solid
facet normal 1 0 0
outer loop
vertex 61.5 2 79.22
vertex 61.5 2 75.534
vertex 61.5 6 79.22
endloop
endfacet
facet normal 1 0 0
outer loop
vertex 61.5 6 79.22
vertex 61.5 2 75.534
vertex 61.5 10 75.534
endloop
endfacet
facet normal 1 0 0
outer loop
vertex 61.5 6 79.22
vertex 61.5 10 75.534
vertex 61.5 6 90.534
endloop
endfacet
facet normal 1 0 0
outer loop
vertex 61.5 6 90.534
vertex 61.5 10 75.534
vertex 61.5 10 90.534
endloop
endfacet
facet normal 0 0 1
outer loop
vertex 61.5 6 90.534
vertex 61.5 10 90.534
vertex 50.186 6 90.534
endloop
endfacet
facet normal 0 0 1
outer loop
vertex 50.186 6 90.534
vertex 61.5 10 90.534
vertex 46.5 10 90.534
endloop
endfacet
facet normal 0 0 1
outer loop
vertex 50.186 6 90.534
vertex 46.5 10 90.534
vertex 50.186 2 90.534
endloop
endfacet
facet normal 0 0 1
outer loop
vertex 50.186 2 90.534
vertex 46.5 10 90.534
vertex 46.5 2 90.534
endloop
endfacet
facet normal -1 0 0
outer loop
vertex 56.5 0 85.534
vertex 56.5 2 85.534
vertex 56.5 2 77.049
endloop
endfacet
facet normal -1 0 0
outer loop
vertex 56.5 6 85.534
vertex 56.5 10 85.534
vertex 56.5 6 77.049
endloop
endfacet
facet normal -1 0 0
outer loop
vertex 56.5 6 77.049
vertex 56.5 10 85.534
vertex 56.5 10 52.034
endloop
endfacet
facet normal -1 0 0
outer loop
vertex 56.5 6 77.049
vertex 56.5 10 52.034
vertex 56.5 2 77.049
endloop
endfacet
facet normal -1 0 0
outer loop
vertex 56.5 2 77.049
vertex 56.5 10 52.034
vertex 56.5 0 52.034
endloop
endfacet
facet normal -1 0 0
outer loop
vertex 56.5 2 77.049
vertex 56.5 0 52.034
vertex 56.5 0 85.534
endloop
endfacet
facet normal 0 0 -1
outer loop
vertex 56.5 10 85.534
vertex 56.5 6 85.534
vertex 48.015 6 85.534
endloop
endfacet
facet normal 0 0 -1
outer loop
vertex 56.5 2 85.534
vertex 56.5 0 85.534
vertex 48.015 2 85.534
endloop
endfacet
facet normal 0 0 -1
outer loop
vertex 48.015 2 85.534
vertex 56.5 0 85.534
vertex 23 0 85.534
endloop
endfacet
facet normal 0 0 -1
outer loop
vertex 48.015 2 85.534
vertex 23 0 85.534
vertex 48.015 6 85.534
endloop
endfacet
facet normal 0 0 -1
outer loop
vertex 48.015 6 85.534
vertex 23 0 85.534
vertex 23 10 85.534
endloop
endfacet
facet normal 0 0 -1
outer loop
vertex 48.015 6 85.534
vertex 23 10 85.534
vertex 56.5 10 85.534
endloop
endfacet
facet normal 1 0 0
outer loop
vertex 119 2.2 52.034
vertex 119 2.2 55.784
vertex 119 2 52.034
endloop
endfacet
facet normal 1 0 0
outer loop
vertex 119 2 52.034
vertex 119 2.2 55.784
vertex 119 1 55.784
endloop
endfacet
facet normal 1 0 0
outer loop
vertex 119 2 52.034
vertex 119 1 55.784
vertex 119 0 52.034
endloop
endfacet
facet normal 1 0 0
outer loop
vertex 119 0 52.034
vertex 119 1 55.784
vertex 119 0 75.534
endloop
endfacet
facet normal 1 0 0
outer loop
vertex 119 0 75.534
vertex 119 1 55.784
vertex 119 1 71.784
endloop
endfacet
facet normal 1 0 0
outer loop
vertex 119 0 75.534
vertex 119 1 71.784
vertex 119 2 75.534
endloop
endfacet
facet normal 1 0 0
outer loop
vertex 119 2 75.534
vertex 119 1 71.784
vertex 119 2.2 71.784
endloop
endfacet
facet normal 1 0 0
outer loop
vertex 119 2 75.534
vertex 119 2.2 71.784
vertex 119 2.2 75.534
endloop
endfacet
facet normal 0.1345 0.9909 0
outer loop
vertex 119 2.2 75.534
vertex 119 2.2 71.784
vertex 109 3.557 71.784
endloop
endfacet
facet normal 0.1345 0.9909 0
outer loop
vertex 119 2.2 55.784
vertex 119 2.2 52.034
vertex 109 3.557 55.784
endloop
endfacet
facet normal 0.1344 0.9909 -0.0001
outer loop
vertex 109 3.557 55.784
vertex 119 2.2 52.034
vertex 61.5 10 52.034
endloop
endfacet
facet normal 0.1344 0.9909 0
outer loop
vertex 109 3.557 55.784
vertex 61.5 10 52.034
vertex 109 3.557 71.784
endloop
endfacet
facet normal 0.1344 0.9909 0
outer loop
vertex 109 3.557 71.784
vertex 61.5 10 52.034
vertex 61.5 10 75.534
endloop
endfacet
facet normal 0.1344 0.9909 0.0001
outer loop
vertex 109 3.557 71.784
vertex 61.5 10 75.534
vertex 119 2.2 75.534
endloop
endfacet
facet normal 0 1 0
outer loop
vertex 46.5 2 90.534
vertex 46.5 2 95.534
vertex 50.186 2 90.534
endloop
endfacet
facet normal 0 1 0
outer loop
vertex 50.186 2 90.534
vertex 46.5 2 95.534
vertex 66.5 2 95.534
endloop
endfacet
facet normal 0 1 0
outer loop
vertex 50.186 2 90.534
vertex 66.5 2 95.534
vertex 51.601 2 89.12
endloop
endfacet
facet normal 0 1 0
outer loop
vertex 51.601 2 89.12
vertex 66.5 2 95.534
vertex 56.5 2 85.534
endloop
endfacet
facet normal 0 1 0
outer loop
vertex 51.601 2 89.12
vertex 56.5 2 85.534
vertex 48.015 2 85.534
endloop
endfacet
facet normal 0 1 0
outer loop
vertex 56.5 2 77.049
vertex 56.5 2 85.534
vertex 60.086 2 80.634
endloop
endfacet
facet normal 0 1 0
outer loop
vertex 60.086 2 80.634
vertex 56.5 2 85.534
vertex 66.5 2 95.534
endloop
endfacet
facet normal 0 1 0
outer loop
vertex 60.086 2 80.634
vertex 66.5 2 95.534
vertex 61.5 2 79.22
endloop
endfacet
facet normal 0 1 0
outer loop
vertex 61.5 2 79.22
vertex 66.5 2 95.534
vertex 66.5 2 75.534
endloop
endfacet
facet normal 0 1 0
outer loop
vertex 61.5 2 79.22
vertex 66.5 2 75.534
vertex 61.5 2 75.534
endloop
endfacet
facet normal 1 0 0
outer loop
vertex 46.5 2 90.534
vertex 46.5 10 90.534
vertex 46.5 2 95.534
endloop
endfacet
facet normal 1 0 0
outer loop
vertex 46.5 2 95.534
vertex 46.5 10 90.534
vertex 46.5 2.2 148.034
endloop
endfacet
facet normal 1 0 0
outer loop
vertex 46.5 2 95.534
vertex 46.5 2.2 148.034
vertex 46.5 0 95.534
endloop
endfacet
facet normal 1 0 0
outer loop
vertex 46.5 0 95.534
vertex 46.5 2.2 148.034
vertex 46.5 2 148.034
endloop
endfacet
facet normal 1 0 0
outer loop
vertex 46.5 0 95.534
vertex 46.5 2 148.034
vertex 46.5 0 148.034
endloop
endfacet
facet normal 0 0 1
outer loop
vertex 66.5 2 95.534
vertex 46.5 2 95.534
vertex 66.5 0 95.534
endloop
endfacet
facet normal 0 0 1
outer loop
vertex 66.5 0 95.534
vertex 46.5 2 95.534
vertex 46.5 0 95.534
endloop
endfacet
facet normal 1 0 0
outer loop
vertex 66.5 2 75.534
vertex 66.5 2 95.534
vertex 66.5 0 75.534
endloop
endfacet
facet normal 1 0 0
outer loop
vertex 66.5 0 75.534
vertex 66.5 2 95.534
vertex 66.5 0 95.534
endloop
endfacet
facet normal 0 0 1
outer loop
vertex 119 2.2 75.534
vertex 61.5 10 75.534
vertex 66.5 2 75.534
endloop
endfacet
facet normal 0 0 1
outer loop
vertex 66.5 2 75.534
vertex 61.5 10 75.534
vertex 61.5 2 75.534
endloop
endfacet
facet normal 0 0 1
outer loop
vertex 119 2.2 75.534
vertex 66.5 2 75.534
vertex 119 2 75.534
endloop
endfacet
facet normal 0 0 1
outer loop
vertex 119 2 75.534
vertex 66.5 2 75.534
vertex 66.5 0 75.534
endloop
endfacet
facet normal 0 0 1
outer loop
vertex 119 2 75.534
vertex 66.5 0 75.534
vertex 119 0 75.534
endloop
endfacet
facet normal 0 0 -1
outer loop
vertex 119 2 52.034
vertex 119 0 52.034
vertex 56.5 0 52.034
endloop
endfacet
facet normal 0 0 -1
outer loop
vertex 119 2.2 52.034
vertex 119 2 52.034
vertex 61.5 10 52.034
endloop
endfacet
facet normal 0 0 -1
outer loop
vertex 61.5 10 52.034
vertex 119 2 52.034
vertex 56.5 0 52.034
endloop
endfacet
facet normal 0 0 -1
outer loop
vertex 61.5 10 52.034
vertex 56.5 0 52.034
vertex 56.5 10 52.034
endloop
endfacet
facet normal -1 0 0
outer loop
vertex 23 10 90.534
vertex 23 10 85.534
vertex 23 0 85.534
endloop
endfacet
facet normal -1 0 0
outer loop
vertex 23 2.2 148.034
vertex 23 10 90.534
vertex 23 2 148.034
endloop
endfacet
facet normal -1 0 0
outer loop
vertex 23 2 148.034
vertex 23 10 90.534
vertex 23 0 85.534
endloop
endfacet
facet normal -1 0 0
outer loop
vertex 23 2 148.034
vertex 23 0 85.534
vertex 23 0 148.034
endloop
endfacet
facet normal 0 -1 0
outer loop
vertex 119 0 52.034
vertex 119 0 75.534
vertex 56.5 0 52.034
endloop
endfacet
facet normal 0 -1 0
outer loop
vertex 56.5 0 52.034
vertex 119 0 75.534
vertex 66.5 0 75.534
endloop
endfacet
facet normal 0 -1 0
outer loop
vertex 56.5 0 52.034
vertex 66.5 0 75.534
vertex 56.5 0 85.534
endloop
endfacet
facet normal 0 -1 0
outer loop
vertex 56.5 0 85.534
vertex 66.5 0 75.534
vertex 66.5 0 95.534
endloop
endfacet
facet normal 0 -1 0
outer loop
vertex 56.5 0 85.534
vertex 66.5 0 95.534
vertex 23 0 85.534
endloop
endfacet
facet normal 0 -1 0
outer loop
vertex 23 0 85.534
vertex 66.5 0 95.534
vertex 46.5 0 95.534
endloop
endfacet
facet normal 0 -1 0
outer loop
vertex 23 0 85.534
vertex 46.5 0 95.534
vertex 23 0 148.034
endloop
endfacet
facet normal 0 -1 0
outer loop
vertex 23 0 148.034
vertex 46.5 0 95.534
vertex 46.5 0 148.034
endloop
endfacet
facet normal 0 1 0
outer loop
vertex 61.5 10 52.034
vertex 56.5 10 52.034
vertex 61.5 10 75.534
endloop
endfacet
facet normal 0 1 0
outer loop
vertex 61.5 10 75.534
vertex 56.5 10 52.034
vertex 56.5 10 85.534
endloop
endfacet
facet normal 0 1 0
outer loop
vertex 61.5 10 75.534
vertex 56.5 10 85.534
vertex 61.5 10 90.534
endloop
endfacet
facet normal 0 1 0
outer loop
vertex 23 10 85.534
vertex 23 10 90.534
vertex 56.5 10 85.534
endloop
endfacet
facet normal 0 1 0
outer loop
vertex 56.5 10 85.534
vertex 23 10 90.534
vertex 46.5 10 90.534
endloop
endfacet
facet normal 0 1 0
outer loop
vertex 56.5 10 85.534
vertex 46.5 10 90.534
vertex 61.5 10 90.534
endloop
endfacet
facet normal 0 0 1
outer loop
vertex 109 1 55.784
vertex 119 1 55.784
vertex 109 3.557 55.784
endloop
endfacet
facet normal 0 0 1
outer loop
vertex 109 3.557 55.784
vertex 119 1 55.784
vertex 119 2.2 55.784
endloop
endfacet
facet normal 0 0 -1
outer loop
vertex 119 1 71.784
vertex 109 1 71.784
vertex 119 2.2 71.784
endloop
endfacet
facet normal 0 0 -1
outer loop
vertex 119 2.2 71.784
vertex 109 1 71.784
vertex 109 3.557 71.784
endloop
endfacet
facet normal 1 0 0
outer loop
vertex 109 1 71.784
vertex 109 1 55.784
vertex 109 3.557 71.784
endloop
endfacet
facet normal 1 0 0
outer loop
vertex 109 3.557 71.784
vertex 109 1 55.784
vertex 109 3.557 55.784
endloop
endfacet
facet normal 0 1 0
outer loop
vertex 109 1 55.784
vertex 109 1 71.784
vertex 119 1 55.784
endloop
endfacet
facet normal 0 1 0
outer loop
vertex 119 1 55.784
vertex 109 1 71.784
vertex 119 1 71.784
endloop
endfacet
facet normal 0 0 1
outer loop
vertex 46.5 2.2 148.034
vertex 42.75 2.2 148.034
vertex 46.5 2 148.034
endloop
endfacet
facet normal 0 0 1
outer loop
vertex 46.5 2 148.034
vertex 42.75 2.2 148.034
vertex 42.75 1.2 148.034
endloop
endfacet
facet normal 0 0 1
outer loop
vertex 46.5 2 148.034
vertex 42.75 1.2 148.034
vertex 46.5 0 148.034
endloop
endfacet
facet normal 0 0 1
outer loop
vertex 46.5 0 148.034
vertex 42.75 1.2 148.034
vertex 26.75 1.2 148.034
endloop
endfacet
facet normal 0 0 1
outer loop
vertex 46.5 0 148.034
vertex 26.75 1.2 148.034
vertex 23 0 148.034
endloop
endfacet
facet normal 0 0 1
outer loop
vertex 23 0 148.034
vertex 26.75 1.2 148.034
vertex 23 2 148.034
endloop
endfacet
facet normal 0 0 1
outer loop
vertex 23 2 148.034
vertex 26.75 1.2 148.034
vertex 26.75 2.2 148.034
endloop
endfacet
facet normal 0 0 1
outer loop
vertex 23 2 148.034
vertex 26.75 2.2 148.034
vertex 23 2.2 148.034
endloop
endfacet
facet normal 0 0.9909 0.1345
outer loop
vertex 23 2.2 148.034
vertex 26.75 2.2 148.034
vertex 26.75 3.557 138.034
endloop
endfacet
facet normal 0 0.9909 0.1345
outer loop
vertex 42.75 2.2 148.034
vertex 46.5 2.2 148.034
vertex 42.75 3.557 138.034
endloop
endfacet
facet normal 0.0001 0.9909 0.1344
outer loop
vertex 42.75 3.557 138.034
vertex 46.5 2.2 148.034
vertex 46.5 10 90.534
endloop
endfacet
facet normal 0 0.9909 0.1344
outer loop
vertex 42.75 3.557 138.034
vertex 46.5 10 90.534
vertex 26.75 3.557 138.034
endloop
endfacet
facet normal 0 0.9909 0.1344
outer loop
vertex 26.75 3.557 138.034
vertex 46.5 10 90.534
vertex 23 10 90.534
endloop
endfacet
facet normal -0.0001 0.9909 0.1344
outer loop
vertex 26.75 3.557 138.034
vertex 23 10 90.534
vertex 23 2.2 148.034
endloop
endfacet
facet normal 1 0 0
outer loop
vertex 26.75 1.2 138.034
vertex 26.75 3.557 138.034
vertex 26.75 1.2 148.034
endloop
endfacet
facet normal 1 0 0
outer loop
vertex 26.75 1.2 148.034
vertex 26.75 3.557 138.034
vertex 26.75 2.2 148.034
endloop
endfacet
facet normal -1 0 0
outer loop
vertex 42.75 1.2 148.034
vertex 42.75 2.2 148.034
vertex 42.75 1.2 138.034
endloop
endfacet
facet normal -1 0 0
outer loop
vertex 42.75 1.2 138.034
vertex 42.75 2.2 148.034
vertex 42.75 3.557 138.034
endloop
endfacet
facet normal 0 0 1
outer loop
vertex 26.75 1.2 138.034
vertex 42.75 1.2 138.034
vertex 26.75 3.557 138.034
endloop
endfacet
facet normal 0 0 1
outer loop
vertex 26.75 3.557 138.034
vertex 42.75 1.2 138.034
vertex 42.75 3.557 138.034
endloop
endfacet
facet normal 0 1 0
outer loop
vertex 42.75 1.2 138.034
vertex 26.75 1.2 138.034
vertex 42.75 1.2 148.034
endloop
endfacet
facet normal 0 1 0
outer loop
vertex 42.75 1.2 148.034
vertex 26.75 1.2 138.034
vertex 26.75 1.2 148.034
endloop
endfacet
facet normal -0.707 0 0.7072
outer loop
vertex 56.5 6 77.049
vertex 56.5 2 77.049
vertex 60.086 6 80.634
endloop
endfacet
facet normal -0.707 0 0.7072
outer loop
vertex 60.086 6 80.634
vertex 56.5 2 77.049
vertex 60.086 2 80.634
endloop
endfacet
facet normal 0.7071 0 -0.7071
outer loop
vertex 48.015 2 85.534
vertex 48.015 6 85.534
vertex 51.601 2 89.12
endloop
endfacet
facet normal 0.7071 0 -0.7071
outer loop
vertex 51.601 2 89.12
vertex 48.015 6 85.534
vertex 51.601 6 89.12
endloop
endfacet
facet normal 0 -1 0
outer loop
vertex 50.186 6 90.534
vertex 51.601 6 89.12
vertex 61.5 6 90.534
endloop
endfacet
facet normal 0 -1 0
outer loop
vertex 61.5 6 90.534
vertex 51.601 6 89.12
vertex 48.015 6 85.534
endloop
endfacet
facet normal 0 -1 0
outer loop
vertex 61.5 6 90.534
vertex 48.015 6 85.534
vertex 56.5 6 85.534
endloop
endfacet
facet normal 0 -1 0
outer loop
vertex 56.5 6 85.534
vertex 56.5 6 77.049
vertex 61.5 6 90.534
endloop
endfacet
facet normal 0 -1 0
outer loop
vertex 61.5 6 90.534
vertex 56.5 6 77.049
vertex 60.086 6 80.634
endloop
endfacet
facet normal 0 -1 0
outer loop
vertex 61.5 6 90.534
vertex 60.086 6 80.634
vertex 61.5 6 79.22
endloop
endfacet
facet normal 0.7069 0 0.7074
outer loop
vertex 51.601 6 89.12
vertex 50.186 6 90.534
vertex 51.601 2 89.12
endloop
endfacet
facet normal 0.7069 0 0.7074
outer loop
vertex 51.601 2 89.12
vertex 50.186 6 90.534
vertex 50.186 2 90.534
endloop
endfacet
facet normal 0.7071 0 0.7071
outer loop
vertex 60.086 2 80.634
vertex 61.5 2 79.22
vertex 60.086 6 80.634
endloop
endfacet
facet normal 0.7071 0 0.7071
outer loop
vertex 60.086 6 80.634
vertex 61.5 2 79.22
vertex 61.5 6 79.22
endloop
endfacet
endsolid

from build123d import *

# Parameters (mm, degrees)
BOSS_EXTRUDE1_DEPTH = 2
BOSS_EXTRUDE2_DEPTH = 8
SKETCH7_W           = 20
SKETCH7_H           = 16
CUT_EXTRUDE4_DEPTH  = 1
SKETCH8_W           = 23.5
SKETCH8_H           = 10
CUT_EXTRUDE5_DEPTH  = 205.156097213
SKETCH9_W           = 10
SKETCH9_H           = 23.5
CUT_EXTRUDE6_DEPTH  = 197.517261647
SKETCH16_W          = 16
SKETCH16_H          = 4
CUT_EXTRUDE7_DEPTH  = 10
SKETCH17_W          = 12
SKETCH17_H          = 4
CUT_EXTRUDE8_DEPTH  = 115.37923137
SKETCH18_W          = 14.430433489
SKETCH18_H          = 4
CUT_EXTRUDE9_DEPTH  = 9


with BuildPart() as part:
    # Sketch1 → Boss-Extrude1 (new body)
    with BuildSketch(Plane(origin=(0, 0, 0), x_dir=(1, 0, 0), z_dir=(0, 1, 0))):
        Polygon((23, -85.533895191), (23, -95.533895191), (23, -158.033895191), (46.5, -158.033895191), (46.5, -95.533895191), (66.5, -95.533895191), (66.5, -75.533895191), (129, -75.533895191), (129, -52.033895191), (66.5, -52.033895191), (56.5, -52.033895191), (56.5, -85.533895191), align=None)
    extrude(amount=BOSS_EXTRUDE1_DEPTH)

    # Sketch2 → Boss-Extrude2 (add)
    with BuildSketch(Plane(origin=(0, 2, 0), x_dir=(1, 0, 0), z_dir=(0, 1, 0))):
        Polygon((56.5, -52.033895191), (61.5, -52.033895191), (61.5, -90.533895191), (23, -90.533895191), (23, -85.533895191), (56.5, -85.533895191), align=None)
    extrude(amount=BOSS_EXTRUDE2_DEPTH)

    # Sketch7 → Cut-Extrude4 (cut)
    with BuildSketch(Plane(origin=(0, 2, 0), x_dir=(1, 0, 0), z_dir=(0, 1, 0))):
        with Locations((119, -63.783895191)):
            Rectangle(SKETCH7_W, SKETCH7_H)
    extrude(amount=-CUT_EXTRUDE4_DEPTH, mode=Mode.SUBTRACT)

    # Sketch8 → Cut-Extrude5 (cut, through all)
    with BuildSketch(Plane(origin=(0, 2, 0), x_dir=(1, 0, 0), z_dir=(0, 1, 0))):
        with Locations((34.75, -153.033895191)):
            Rectangle(SKETCH8_W, SKETCH8_H)
    extrude(amount=-CUT_EXTRUDE5_DEPTH, mode=Mode.SUBTRACT)

    # Sketch9 → Cut-Extrude6 (cut, through all)
    with BuildSketch(Plane(origin=(0, 2, 0), x_dir=(1, 0, 0), z_dir=(0, 1, 0))):
        with Locations((124, -63.783895191)):
            Rectangle(SKETCH9_W, SKETCH9_H)
    extrude(amount=-CUT_EXTRUDE6_DEPTH, mode=Mode.SUBTRACT)

    # Sketch11 → Loft3 section 0
    with BuildSketch(Plane.XY.offset(90.533895191)):
        with BuildLine():
            Line((46.5, 2), (46.5, 10))
            Line((46.5, 10), (23, 10))
            Line((23, 10), (23, 2))
            Line((23, 2), (46.5, 2))
        make_face()
    # Sketch13 → Loft3 section 1
    with BuildSketch(Plane.XY.offset(148.033895191)):
        with BuildLine():
            Line((23, 2), (23, 2.2))
            Line((23, 2.2), (46.5, 2.2))
            Line((46.5, 2.2), (46.5, 2))
            Line((46.5, 2), (23, 2))
        make_face()
    loft3 = loft()

    # Sketch16 → Cut-Extrude7 (cut)
    with BuildSketch(Plane.XY.offset(148.033895191)):
        with Locations((34.75, 3.2)):
            Rectangle(SKETCH16_W, SKETCH16_H)
    cut_extrude7 = extrude(amount=-CUT_EXTRUDE7_DEPTH, mode=Mode.SUBTRACT)

    # Mirror2: Loft3, Cut-Extrude7 across plane
    add(loft3.mirror(Plane(origin=(-14.516947595, 0, 14.516947595), x_dir=(0.7071067811865507, 0, 0.7071067811865444), z_dir=(-0.7071067811865446, 0, 0.7071067811865506))))
    add(cut_extrude7.mirror(Plane(origin=(-14.516947595, 0, 14.516947595), x_dir=(0.7071067811865507, 0, 0.7071067811865444), z_dir=(-0.7071067811865446, 0, 0.7071067811865506))), mode=Mode.SUBTRACT)

    # Sketch17 → Cut-Extrude8 (cut, through all)
    with BuildSketch(Plane(origin=(54.266947595, 0, 54.266947595), x_dir=(0.7071067811865475, 0, -0.7071067811865477), z_dir=(0.7071067811865477, 0, 0.7071067811865475))):
        with Locations((-20.530064174, 4)):
            Rectangle(SKETCH17_W, SKETCH17_H)
    extrude(amount=CUT_EXTRUDE8_DEPTH, mode=Mode.SUBTRACT)

    # Sketch18 → Cut-Extrude9 (cut, symmetric)
    with BuildSketch(Plane(origin=(-14.516947595, 0, 14.516947595), x_dir=(0.7071067811865446, 0, 0.7071067811865505), z_dir=(-0.7071067811865505, 0, 0.7071067811865446))):
        with Locations((106.719415005, 4)):
            Rectangle(SKETCH18_W, SKETCH18_H)
    extrude(amount=CUT_EXTRUDE9_DEPTH, both=True, mode=Mode.SUBTRACT)


solid = part.part
